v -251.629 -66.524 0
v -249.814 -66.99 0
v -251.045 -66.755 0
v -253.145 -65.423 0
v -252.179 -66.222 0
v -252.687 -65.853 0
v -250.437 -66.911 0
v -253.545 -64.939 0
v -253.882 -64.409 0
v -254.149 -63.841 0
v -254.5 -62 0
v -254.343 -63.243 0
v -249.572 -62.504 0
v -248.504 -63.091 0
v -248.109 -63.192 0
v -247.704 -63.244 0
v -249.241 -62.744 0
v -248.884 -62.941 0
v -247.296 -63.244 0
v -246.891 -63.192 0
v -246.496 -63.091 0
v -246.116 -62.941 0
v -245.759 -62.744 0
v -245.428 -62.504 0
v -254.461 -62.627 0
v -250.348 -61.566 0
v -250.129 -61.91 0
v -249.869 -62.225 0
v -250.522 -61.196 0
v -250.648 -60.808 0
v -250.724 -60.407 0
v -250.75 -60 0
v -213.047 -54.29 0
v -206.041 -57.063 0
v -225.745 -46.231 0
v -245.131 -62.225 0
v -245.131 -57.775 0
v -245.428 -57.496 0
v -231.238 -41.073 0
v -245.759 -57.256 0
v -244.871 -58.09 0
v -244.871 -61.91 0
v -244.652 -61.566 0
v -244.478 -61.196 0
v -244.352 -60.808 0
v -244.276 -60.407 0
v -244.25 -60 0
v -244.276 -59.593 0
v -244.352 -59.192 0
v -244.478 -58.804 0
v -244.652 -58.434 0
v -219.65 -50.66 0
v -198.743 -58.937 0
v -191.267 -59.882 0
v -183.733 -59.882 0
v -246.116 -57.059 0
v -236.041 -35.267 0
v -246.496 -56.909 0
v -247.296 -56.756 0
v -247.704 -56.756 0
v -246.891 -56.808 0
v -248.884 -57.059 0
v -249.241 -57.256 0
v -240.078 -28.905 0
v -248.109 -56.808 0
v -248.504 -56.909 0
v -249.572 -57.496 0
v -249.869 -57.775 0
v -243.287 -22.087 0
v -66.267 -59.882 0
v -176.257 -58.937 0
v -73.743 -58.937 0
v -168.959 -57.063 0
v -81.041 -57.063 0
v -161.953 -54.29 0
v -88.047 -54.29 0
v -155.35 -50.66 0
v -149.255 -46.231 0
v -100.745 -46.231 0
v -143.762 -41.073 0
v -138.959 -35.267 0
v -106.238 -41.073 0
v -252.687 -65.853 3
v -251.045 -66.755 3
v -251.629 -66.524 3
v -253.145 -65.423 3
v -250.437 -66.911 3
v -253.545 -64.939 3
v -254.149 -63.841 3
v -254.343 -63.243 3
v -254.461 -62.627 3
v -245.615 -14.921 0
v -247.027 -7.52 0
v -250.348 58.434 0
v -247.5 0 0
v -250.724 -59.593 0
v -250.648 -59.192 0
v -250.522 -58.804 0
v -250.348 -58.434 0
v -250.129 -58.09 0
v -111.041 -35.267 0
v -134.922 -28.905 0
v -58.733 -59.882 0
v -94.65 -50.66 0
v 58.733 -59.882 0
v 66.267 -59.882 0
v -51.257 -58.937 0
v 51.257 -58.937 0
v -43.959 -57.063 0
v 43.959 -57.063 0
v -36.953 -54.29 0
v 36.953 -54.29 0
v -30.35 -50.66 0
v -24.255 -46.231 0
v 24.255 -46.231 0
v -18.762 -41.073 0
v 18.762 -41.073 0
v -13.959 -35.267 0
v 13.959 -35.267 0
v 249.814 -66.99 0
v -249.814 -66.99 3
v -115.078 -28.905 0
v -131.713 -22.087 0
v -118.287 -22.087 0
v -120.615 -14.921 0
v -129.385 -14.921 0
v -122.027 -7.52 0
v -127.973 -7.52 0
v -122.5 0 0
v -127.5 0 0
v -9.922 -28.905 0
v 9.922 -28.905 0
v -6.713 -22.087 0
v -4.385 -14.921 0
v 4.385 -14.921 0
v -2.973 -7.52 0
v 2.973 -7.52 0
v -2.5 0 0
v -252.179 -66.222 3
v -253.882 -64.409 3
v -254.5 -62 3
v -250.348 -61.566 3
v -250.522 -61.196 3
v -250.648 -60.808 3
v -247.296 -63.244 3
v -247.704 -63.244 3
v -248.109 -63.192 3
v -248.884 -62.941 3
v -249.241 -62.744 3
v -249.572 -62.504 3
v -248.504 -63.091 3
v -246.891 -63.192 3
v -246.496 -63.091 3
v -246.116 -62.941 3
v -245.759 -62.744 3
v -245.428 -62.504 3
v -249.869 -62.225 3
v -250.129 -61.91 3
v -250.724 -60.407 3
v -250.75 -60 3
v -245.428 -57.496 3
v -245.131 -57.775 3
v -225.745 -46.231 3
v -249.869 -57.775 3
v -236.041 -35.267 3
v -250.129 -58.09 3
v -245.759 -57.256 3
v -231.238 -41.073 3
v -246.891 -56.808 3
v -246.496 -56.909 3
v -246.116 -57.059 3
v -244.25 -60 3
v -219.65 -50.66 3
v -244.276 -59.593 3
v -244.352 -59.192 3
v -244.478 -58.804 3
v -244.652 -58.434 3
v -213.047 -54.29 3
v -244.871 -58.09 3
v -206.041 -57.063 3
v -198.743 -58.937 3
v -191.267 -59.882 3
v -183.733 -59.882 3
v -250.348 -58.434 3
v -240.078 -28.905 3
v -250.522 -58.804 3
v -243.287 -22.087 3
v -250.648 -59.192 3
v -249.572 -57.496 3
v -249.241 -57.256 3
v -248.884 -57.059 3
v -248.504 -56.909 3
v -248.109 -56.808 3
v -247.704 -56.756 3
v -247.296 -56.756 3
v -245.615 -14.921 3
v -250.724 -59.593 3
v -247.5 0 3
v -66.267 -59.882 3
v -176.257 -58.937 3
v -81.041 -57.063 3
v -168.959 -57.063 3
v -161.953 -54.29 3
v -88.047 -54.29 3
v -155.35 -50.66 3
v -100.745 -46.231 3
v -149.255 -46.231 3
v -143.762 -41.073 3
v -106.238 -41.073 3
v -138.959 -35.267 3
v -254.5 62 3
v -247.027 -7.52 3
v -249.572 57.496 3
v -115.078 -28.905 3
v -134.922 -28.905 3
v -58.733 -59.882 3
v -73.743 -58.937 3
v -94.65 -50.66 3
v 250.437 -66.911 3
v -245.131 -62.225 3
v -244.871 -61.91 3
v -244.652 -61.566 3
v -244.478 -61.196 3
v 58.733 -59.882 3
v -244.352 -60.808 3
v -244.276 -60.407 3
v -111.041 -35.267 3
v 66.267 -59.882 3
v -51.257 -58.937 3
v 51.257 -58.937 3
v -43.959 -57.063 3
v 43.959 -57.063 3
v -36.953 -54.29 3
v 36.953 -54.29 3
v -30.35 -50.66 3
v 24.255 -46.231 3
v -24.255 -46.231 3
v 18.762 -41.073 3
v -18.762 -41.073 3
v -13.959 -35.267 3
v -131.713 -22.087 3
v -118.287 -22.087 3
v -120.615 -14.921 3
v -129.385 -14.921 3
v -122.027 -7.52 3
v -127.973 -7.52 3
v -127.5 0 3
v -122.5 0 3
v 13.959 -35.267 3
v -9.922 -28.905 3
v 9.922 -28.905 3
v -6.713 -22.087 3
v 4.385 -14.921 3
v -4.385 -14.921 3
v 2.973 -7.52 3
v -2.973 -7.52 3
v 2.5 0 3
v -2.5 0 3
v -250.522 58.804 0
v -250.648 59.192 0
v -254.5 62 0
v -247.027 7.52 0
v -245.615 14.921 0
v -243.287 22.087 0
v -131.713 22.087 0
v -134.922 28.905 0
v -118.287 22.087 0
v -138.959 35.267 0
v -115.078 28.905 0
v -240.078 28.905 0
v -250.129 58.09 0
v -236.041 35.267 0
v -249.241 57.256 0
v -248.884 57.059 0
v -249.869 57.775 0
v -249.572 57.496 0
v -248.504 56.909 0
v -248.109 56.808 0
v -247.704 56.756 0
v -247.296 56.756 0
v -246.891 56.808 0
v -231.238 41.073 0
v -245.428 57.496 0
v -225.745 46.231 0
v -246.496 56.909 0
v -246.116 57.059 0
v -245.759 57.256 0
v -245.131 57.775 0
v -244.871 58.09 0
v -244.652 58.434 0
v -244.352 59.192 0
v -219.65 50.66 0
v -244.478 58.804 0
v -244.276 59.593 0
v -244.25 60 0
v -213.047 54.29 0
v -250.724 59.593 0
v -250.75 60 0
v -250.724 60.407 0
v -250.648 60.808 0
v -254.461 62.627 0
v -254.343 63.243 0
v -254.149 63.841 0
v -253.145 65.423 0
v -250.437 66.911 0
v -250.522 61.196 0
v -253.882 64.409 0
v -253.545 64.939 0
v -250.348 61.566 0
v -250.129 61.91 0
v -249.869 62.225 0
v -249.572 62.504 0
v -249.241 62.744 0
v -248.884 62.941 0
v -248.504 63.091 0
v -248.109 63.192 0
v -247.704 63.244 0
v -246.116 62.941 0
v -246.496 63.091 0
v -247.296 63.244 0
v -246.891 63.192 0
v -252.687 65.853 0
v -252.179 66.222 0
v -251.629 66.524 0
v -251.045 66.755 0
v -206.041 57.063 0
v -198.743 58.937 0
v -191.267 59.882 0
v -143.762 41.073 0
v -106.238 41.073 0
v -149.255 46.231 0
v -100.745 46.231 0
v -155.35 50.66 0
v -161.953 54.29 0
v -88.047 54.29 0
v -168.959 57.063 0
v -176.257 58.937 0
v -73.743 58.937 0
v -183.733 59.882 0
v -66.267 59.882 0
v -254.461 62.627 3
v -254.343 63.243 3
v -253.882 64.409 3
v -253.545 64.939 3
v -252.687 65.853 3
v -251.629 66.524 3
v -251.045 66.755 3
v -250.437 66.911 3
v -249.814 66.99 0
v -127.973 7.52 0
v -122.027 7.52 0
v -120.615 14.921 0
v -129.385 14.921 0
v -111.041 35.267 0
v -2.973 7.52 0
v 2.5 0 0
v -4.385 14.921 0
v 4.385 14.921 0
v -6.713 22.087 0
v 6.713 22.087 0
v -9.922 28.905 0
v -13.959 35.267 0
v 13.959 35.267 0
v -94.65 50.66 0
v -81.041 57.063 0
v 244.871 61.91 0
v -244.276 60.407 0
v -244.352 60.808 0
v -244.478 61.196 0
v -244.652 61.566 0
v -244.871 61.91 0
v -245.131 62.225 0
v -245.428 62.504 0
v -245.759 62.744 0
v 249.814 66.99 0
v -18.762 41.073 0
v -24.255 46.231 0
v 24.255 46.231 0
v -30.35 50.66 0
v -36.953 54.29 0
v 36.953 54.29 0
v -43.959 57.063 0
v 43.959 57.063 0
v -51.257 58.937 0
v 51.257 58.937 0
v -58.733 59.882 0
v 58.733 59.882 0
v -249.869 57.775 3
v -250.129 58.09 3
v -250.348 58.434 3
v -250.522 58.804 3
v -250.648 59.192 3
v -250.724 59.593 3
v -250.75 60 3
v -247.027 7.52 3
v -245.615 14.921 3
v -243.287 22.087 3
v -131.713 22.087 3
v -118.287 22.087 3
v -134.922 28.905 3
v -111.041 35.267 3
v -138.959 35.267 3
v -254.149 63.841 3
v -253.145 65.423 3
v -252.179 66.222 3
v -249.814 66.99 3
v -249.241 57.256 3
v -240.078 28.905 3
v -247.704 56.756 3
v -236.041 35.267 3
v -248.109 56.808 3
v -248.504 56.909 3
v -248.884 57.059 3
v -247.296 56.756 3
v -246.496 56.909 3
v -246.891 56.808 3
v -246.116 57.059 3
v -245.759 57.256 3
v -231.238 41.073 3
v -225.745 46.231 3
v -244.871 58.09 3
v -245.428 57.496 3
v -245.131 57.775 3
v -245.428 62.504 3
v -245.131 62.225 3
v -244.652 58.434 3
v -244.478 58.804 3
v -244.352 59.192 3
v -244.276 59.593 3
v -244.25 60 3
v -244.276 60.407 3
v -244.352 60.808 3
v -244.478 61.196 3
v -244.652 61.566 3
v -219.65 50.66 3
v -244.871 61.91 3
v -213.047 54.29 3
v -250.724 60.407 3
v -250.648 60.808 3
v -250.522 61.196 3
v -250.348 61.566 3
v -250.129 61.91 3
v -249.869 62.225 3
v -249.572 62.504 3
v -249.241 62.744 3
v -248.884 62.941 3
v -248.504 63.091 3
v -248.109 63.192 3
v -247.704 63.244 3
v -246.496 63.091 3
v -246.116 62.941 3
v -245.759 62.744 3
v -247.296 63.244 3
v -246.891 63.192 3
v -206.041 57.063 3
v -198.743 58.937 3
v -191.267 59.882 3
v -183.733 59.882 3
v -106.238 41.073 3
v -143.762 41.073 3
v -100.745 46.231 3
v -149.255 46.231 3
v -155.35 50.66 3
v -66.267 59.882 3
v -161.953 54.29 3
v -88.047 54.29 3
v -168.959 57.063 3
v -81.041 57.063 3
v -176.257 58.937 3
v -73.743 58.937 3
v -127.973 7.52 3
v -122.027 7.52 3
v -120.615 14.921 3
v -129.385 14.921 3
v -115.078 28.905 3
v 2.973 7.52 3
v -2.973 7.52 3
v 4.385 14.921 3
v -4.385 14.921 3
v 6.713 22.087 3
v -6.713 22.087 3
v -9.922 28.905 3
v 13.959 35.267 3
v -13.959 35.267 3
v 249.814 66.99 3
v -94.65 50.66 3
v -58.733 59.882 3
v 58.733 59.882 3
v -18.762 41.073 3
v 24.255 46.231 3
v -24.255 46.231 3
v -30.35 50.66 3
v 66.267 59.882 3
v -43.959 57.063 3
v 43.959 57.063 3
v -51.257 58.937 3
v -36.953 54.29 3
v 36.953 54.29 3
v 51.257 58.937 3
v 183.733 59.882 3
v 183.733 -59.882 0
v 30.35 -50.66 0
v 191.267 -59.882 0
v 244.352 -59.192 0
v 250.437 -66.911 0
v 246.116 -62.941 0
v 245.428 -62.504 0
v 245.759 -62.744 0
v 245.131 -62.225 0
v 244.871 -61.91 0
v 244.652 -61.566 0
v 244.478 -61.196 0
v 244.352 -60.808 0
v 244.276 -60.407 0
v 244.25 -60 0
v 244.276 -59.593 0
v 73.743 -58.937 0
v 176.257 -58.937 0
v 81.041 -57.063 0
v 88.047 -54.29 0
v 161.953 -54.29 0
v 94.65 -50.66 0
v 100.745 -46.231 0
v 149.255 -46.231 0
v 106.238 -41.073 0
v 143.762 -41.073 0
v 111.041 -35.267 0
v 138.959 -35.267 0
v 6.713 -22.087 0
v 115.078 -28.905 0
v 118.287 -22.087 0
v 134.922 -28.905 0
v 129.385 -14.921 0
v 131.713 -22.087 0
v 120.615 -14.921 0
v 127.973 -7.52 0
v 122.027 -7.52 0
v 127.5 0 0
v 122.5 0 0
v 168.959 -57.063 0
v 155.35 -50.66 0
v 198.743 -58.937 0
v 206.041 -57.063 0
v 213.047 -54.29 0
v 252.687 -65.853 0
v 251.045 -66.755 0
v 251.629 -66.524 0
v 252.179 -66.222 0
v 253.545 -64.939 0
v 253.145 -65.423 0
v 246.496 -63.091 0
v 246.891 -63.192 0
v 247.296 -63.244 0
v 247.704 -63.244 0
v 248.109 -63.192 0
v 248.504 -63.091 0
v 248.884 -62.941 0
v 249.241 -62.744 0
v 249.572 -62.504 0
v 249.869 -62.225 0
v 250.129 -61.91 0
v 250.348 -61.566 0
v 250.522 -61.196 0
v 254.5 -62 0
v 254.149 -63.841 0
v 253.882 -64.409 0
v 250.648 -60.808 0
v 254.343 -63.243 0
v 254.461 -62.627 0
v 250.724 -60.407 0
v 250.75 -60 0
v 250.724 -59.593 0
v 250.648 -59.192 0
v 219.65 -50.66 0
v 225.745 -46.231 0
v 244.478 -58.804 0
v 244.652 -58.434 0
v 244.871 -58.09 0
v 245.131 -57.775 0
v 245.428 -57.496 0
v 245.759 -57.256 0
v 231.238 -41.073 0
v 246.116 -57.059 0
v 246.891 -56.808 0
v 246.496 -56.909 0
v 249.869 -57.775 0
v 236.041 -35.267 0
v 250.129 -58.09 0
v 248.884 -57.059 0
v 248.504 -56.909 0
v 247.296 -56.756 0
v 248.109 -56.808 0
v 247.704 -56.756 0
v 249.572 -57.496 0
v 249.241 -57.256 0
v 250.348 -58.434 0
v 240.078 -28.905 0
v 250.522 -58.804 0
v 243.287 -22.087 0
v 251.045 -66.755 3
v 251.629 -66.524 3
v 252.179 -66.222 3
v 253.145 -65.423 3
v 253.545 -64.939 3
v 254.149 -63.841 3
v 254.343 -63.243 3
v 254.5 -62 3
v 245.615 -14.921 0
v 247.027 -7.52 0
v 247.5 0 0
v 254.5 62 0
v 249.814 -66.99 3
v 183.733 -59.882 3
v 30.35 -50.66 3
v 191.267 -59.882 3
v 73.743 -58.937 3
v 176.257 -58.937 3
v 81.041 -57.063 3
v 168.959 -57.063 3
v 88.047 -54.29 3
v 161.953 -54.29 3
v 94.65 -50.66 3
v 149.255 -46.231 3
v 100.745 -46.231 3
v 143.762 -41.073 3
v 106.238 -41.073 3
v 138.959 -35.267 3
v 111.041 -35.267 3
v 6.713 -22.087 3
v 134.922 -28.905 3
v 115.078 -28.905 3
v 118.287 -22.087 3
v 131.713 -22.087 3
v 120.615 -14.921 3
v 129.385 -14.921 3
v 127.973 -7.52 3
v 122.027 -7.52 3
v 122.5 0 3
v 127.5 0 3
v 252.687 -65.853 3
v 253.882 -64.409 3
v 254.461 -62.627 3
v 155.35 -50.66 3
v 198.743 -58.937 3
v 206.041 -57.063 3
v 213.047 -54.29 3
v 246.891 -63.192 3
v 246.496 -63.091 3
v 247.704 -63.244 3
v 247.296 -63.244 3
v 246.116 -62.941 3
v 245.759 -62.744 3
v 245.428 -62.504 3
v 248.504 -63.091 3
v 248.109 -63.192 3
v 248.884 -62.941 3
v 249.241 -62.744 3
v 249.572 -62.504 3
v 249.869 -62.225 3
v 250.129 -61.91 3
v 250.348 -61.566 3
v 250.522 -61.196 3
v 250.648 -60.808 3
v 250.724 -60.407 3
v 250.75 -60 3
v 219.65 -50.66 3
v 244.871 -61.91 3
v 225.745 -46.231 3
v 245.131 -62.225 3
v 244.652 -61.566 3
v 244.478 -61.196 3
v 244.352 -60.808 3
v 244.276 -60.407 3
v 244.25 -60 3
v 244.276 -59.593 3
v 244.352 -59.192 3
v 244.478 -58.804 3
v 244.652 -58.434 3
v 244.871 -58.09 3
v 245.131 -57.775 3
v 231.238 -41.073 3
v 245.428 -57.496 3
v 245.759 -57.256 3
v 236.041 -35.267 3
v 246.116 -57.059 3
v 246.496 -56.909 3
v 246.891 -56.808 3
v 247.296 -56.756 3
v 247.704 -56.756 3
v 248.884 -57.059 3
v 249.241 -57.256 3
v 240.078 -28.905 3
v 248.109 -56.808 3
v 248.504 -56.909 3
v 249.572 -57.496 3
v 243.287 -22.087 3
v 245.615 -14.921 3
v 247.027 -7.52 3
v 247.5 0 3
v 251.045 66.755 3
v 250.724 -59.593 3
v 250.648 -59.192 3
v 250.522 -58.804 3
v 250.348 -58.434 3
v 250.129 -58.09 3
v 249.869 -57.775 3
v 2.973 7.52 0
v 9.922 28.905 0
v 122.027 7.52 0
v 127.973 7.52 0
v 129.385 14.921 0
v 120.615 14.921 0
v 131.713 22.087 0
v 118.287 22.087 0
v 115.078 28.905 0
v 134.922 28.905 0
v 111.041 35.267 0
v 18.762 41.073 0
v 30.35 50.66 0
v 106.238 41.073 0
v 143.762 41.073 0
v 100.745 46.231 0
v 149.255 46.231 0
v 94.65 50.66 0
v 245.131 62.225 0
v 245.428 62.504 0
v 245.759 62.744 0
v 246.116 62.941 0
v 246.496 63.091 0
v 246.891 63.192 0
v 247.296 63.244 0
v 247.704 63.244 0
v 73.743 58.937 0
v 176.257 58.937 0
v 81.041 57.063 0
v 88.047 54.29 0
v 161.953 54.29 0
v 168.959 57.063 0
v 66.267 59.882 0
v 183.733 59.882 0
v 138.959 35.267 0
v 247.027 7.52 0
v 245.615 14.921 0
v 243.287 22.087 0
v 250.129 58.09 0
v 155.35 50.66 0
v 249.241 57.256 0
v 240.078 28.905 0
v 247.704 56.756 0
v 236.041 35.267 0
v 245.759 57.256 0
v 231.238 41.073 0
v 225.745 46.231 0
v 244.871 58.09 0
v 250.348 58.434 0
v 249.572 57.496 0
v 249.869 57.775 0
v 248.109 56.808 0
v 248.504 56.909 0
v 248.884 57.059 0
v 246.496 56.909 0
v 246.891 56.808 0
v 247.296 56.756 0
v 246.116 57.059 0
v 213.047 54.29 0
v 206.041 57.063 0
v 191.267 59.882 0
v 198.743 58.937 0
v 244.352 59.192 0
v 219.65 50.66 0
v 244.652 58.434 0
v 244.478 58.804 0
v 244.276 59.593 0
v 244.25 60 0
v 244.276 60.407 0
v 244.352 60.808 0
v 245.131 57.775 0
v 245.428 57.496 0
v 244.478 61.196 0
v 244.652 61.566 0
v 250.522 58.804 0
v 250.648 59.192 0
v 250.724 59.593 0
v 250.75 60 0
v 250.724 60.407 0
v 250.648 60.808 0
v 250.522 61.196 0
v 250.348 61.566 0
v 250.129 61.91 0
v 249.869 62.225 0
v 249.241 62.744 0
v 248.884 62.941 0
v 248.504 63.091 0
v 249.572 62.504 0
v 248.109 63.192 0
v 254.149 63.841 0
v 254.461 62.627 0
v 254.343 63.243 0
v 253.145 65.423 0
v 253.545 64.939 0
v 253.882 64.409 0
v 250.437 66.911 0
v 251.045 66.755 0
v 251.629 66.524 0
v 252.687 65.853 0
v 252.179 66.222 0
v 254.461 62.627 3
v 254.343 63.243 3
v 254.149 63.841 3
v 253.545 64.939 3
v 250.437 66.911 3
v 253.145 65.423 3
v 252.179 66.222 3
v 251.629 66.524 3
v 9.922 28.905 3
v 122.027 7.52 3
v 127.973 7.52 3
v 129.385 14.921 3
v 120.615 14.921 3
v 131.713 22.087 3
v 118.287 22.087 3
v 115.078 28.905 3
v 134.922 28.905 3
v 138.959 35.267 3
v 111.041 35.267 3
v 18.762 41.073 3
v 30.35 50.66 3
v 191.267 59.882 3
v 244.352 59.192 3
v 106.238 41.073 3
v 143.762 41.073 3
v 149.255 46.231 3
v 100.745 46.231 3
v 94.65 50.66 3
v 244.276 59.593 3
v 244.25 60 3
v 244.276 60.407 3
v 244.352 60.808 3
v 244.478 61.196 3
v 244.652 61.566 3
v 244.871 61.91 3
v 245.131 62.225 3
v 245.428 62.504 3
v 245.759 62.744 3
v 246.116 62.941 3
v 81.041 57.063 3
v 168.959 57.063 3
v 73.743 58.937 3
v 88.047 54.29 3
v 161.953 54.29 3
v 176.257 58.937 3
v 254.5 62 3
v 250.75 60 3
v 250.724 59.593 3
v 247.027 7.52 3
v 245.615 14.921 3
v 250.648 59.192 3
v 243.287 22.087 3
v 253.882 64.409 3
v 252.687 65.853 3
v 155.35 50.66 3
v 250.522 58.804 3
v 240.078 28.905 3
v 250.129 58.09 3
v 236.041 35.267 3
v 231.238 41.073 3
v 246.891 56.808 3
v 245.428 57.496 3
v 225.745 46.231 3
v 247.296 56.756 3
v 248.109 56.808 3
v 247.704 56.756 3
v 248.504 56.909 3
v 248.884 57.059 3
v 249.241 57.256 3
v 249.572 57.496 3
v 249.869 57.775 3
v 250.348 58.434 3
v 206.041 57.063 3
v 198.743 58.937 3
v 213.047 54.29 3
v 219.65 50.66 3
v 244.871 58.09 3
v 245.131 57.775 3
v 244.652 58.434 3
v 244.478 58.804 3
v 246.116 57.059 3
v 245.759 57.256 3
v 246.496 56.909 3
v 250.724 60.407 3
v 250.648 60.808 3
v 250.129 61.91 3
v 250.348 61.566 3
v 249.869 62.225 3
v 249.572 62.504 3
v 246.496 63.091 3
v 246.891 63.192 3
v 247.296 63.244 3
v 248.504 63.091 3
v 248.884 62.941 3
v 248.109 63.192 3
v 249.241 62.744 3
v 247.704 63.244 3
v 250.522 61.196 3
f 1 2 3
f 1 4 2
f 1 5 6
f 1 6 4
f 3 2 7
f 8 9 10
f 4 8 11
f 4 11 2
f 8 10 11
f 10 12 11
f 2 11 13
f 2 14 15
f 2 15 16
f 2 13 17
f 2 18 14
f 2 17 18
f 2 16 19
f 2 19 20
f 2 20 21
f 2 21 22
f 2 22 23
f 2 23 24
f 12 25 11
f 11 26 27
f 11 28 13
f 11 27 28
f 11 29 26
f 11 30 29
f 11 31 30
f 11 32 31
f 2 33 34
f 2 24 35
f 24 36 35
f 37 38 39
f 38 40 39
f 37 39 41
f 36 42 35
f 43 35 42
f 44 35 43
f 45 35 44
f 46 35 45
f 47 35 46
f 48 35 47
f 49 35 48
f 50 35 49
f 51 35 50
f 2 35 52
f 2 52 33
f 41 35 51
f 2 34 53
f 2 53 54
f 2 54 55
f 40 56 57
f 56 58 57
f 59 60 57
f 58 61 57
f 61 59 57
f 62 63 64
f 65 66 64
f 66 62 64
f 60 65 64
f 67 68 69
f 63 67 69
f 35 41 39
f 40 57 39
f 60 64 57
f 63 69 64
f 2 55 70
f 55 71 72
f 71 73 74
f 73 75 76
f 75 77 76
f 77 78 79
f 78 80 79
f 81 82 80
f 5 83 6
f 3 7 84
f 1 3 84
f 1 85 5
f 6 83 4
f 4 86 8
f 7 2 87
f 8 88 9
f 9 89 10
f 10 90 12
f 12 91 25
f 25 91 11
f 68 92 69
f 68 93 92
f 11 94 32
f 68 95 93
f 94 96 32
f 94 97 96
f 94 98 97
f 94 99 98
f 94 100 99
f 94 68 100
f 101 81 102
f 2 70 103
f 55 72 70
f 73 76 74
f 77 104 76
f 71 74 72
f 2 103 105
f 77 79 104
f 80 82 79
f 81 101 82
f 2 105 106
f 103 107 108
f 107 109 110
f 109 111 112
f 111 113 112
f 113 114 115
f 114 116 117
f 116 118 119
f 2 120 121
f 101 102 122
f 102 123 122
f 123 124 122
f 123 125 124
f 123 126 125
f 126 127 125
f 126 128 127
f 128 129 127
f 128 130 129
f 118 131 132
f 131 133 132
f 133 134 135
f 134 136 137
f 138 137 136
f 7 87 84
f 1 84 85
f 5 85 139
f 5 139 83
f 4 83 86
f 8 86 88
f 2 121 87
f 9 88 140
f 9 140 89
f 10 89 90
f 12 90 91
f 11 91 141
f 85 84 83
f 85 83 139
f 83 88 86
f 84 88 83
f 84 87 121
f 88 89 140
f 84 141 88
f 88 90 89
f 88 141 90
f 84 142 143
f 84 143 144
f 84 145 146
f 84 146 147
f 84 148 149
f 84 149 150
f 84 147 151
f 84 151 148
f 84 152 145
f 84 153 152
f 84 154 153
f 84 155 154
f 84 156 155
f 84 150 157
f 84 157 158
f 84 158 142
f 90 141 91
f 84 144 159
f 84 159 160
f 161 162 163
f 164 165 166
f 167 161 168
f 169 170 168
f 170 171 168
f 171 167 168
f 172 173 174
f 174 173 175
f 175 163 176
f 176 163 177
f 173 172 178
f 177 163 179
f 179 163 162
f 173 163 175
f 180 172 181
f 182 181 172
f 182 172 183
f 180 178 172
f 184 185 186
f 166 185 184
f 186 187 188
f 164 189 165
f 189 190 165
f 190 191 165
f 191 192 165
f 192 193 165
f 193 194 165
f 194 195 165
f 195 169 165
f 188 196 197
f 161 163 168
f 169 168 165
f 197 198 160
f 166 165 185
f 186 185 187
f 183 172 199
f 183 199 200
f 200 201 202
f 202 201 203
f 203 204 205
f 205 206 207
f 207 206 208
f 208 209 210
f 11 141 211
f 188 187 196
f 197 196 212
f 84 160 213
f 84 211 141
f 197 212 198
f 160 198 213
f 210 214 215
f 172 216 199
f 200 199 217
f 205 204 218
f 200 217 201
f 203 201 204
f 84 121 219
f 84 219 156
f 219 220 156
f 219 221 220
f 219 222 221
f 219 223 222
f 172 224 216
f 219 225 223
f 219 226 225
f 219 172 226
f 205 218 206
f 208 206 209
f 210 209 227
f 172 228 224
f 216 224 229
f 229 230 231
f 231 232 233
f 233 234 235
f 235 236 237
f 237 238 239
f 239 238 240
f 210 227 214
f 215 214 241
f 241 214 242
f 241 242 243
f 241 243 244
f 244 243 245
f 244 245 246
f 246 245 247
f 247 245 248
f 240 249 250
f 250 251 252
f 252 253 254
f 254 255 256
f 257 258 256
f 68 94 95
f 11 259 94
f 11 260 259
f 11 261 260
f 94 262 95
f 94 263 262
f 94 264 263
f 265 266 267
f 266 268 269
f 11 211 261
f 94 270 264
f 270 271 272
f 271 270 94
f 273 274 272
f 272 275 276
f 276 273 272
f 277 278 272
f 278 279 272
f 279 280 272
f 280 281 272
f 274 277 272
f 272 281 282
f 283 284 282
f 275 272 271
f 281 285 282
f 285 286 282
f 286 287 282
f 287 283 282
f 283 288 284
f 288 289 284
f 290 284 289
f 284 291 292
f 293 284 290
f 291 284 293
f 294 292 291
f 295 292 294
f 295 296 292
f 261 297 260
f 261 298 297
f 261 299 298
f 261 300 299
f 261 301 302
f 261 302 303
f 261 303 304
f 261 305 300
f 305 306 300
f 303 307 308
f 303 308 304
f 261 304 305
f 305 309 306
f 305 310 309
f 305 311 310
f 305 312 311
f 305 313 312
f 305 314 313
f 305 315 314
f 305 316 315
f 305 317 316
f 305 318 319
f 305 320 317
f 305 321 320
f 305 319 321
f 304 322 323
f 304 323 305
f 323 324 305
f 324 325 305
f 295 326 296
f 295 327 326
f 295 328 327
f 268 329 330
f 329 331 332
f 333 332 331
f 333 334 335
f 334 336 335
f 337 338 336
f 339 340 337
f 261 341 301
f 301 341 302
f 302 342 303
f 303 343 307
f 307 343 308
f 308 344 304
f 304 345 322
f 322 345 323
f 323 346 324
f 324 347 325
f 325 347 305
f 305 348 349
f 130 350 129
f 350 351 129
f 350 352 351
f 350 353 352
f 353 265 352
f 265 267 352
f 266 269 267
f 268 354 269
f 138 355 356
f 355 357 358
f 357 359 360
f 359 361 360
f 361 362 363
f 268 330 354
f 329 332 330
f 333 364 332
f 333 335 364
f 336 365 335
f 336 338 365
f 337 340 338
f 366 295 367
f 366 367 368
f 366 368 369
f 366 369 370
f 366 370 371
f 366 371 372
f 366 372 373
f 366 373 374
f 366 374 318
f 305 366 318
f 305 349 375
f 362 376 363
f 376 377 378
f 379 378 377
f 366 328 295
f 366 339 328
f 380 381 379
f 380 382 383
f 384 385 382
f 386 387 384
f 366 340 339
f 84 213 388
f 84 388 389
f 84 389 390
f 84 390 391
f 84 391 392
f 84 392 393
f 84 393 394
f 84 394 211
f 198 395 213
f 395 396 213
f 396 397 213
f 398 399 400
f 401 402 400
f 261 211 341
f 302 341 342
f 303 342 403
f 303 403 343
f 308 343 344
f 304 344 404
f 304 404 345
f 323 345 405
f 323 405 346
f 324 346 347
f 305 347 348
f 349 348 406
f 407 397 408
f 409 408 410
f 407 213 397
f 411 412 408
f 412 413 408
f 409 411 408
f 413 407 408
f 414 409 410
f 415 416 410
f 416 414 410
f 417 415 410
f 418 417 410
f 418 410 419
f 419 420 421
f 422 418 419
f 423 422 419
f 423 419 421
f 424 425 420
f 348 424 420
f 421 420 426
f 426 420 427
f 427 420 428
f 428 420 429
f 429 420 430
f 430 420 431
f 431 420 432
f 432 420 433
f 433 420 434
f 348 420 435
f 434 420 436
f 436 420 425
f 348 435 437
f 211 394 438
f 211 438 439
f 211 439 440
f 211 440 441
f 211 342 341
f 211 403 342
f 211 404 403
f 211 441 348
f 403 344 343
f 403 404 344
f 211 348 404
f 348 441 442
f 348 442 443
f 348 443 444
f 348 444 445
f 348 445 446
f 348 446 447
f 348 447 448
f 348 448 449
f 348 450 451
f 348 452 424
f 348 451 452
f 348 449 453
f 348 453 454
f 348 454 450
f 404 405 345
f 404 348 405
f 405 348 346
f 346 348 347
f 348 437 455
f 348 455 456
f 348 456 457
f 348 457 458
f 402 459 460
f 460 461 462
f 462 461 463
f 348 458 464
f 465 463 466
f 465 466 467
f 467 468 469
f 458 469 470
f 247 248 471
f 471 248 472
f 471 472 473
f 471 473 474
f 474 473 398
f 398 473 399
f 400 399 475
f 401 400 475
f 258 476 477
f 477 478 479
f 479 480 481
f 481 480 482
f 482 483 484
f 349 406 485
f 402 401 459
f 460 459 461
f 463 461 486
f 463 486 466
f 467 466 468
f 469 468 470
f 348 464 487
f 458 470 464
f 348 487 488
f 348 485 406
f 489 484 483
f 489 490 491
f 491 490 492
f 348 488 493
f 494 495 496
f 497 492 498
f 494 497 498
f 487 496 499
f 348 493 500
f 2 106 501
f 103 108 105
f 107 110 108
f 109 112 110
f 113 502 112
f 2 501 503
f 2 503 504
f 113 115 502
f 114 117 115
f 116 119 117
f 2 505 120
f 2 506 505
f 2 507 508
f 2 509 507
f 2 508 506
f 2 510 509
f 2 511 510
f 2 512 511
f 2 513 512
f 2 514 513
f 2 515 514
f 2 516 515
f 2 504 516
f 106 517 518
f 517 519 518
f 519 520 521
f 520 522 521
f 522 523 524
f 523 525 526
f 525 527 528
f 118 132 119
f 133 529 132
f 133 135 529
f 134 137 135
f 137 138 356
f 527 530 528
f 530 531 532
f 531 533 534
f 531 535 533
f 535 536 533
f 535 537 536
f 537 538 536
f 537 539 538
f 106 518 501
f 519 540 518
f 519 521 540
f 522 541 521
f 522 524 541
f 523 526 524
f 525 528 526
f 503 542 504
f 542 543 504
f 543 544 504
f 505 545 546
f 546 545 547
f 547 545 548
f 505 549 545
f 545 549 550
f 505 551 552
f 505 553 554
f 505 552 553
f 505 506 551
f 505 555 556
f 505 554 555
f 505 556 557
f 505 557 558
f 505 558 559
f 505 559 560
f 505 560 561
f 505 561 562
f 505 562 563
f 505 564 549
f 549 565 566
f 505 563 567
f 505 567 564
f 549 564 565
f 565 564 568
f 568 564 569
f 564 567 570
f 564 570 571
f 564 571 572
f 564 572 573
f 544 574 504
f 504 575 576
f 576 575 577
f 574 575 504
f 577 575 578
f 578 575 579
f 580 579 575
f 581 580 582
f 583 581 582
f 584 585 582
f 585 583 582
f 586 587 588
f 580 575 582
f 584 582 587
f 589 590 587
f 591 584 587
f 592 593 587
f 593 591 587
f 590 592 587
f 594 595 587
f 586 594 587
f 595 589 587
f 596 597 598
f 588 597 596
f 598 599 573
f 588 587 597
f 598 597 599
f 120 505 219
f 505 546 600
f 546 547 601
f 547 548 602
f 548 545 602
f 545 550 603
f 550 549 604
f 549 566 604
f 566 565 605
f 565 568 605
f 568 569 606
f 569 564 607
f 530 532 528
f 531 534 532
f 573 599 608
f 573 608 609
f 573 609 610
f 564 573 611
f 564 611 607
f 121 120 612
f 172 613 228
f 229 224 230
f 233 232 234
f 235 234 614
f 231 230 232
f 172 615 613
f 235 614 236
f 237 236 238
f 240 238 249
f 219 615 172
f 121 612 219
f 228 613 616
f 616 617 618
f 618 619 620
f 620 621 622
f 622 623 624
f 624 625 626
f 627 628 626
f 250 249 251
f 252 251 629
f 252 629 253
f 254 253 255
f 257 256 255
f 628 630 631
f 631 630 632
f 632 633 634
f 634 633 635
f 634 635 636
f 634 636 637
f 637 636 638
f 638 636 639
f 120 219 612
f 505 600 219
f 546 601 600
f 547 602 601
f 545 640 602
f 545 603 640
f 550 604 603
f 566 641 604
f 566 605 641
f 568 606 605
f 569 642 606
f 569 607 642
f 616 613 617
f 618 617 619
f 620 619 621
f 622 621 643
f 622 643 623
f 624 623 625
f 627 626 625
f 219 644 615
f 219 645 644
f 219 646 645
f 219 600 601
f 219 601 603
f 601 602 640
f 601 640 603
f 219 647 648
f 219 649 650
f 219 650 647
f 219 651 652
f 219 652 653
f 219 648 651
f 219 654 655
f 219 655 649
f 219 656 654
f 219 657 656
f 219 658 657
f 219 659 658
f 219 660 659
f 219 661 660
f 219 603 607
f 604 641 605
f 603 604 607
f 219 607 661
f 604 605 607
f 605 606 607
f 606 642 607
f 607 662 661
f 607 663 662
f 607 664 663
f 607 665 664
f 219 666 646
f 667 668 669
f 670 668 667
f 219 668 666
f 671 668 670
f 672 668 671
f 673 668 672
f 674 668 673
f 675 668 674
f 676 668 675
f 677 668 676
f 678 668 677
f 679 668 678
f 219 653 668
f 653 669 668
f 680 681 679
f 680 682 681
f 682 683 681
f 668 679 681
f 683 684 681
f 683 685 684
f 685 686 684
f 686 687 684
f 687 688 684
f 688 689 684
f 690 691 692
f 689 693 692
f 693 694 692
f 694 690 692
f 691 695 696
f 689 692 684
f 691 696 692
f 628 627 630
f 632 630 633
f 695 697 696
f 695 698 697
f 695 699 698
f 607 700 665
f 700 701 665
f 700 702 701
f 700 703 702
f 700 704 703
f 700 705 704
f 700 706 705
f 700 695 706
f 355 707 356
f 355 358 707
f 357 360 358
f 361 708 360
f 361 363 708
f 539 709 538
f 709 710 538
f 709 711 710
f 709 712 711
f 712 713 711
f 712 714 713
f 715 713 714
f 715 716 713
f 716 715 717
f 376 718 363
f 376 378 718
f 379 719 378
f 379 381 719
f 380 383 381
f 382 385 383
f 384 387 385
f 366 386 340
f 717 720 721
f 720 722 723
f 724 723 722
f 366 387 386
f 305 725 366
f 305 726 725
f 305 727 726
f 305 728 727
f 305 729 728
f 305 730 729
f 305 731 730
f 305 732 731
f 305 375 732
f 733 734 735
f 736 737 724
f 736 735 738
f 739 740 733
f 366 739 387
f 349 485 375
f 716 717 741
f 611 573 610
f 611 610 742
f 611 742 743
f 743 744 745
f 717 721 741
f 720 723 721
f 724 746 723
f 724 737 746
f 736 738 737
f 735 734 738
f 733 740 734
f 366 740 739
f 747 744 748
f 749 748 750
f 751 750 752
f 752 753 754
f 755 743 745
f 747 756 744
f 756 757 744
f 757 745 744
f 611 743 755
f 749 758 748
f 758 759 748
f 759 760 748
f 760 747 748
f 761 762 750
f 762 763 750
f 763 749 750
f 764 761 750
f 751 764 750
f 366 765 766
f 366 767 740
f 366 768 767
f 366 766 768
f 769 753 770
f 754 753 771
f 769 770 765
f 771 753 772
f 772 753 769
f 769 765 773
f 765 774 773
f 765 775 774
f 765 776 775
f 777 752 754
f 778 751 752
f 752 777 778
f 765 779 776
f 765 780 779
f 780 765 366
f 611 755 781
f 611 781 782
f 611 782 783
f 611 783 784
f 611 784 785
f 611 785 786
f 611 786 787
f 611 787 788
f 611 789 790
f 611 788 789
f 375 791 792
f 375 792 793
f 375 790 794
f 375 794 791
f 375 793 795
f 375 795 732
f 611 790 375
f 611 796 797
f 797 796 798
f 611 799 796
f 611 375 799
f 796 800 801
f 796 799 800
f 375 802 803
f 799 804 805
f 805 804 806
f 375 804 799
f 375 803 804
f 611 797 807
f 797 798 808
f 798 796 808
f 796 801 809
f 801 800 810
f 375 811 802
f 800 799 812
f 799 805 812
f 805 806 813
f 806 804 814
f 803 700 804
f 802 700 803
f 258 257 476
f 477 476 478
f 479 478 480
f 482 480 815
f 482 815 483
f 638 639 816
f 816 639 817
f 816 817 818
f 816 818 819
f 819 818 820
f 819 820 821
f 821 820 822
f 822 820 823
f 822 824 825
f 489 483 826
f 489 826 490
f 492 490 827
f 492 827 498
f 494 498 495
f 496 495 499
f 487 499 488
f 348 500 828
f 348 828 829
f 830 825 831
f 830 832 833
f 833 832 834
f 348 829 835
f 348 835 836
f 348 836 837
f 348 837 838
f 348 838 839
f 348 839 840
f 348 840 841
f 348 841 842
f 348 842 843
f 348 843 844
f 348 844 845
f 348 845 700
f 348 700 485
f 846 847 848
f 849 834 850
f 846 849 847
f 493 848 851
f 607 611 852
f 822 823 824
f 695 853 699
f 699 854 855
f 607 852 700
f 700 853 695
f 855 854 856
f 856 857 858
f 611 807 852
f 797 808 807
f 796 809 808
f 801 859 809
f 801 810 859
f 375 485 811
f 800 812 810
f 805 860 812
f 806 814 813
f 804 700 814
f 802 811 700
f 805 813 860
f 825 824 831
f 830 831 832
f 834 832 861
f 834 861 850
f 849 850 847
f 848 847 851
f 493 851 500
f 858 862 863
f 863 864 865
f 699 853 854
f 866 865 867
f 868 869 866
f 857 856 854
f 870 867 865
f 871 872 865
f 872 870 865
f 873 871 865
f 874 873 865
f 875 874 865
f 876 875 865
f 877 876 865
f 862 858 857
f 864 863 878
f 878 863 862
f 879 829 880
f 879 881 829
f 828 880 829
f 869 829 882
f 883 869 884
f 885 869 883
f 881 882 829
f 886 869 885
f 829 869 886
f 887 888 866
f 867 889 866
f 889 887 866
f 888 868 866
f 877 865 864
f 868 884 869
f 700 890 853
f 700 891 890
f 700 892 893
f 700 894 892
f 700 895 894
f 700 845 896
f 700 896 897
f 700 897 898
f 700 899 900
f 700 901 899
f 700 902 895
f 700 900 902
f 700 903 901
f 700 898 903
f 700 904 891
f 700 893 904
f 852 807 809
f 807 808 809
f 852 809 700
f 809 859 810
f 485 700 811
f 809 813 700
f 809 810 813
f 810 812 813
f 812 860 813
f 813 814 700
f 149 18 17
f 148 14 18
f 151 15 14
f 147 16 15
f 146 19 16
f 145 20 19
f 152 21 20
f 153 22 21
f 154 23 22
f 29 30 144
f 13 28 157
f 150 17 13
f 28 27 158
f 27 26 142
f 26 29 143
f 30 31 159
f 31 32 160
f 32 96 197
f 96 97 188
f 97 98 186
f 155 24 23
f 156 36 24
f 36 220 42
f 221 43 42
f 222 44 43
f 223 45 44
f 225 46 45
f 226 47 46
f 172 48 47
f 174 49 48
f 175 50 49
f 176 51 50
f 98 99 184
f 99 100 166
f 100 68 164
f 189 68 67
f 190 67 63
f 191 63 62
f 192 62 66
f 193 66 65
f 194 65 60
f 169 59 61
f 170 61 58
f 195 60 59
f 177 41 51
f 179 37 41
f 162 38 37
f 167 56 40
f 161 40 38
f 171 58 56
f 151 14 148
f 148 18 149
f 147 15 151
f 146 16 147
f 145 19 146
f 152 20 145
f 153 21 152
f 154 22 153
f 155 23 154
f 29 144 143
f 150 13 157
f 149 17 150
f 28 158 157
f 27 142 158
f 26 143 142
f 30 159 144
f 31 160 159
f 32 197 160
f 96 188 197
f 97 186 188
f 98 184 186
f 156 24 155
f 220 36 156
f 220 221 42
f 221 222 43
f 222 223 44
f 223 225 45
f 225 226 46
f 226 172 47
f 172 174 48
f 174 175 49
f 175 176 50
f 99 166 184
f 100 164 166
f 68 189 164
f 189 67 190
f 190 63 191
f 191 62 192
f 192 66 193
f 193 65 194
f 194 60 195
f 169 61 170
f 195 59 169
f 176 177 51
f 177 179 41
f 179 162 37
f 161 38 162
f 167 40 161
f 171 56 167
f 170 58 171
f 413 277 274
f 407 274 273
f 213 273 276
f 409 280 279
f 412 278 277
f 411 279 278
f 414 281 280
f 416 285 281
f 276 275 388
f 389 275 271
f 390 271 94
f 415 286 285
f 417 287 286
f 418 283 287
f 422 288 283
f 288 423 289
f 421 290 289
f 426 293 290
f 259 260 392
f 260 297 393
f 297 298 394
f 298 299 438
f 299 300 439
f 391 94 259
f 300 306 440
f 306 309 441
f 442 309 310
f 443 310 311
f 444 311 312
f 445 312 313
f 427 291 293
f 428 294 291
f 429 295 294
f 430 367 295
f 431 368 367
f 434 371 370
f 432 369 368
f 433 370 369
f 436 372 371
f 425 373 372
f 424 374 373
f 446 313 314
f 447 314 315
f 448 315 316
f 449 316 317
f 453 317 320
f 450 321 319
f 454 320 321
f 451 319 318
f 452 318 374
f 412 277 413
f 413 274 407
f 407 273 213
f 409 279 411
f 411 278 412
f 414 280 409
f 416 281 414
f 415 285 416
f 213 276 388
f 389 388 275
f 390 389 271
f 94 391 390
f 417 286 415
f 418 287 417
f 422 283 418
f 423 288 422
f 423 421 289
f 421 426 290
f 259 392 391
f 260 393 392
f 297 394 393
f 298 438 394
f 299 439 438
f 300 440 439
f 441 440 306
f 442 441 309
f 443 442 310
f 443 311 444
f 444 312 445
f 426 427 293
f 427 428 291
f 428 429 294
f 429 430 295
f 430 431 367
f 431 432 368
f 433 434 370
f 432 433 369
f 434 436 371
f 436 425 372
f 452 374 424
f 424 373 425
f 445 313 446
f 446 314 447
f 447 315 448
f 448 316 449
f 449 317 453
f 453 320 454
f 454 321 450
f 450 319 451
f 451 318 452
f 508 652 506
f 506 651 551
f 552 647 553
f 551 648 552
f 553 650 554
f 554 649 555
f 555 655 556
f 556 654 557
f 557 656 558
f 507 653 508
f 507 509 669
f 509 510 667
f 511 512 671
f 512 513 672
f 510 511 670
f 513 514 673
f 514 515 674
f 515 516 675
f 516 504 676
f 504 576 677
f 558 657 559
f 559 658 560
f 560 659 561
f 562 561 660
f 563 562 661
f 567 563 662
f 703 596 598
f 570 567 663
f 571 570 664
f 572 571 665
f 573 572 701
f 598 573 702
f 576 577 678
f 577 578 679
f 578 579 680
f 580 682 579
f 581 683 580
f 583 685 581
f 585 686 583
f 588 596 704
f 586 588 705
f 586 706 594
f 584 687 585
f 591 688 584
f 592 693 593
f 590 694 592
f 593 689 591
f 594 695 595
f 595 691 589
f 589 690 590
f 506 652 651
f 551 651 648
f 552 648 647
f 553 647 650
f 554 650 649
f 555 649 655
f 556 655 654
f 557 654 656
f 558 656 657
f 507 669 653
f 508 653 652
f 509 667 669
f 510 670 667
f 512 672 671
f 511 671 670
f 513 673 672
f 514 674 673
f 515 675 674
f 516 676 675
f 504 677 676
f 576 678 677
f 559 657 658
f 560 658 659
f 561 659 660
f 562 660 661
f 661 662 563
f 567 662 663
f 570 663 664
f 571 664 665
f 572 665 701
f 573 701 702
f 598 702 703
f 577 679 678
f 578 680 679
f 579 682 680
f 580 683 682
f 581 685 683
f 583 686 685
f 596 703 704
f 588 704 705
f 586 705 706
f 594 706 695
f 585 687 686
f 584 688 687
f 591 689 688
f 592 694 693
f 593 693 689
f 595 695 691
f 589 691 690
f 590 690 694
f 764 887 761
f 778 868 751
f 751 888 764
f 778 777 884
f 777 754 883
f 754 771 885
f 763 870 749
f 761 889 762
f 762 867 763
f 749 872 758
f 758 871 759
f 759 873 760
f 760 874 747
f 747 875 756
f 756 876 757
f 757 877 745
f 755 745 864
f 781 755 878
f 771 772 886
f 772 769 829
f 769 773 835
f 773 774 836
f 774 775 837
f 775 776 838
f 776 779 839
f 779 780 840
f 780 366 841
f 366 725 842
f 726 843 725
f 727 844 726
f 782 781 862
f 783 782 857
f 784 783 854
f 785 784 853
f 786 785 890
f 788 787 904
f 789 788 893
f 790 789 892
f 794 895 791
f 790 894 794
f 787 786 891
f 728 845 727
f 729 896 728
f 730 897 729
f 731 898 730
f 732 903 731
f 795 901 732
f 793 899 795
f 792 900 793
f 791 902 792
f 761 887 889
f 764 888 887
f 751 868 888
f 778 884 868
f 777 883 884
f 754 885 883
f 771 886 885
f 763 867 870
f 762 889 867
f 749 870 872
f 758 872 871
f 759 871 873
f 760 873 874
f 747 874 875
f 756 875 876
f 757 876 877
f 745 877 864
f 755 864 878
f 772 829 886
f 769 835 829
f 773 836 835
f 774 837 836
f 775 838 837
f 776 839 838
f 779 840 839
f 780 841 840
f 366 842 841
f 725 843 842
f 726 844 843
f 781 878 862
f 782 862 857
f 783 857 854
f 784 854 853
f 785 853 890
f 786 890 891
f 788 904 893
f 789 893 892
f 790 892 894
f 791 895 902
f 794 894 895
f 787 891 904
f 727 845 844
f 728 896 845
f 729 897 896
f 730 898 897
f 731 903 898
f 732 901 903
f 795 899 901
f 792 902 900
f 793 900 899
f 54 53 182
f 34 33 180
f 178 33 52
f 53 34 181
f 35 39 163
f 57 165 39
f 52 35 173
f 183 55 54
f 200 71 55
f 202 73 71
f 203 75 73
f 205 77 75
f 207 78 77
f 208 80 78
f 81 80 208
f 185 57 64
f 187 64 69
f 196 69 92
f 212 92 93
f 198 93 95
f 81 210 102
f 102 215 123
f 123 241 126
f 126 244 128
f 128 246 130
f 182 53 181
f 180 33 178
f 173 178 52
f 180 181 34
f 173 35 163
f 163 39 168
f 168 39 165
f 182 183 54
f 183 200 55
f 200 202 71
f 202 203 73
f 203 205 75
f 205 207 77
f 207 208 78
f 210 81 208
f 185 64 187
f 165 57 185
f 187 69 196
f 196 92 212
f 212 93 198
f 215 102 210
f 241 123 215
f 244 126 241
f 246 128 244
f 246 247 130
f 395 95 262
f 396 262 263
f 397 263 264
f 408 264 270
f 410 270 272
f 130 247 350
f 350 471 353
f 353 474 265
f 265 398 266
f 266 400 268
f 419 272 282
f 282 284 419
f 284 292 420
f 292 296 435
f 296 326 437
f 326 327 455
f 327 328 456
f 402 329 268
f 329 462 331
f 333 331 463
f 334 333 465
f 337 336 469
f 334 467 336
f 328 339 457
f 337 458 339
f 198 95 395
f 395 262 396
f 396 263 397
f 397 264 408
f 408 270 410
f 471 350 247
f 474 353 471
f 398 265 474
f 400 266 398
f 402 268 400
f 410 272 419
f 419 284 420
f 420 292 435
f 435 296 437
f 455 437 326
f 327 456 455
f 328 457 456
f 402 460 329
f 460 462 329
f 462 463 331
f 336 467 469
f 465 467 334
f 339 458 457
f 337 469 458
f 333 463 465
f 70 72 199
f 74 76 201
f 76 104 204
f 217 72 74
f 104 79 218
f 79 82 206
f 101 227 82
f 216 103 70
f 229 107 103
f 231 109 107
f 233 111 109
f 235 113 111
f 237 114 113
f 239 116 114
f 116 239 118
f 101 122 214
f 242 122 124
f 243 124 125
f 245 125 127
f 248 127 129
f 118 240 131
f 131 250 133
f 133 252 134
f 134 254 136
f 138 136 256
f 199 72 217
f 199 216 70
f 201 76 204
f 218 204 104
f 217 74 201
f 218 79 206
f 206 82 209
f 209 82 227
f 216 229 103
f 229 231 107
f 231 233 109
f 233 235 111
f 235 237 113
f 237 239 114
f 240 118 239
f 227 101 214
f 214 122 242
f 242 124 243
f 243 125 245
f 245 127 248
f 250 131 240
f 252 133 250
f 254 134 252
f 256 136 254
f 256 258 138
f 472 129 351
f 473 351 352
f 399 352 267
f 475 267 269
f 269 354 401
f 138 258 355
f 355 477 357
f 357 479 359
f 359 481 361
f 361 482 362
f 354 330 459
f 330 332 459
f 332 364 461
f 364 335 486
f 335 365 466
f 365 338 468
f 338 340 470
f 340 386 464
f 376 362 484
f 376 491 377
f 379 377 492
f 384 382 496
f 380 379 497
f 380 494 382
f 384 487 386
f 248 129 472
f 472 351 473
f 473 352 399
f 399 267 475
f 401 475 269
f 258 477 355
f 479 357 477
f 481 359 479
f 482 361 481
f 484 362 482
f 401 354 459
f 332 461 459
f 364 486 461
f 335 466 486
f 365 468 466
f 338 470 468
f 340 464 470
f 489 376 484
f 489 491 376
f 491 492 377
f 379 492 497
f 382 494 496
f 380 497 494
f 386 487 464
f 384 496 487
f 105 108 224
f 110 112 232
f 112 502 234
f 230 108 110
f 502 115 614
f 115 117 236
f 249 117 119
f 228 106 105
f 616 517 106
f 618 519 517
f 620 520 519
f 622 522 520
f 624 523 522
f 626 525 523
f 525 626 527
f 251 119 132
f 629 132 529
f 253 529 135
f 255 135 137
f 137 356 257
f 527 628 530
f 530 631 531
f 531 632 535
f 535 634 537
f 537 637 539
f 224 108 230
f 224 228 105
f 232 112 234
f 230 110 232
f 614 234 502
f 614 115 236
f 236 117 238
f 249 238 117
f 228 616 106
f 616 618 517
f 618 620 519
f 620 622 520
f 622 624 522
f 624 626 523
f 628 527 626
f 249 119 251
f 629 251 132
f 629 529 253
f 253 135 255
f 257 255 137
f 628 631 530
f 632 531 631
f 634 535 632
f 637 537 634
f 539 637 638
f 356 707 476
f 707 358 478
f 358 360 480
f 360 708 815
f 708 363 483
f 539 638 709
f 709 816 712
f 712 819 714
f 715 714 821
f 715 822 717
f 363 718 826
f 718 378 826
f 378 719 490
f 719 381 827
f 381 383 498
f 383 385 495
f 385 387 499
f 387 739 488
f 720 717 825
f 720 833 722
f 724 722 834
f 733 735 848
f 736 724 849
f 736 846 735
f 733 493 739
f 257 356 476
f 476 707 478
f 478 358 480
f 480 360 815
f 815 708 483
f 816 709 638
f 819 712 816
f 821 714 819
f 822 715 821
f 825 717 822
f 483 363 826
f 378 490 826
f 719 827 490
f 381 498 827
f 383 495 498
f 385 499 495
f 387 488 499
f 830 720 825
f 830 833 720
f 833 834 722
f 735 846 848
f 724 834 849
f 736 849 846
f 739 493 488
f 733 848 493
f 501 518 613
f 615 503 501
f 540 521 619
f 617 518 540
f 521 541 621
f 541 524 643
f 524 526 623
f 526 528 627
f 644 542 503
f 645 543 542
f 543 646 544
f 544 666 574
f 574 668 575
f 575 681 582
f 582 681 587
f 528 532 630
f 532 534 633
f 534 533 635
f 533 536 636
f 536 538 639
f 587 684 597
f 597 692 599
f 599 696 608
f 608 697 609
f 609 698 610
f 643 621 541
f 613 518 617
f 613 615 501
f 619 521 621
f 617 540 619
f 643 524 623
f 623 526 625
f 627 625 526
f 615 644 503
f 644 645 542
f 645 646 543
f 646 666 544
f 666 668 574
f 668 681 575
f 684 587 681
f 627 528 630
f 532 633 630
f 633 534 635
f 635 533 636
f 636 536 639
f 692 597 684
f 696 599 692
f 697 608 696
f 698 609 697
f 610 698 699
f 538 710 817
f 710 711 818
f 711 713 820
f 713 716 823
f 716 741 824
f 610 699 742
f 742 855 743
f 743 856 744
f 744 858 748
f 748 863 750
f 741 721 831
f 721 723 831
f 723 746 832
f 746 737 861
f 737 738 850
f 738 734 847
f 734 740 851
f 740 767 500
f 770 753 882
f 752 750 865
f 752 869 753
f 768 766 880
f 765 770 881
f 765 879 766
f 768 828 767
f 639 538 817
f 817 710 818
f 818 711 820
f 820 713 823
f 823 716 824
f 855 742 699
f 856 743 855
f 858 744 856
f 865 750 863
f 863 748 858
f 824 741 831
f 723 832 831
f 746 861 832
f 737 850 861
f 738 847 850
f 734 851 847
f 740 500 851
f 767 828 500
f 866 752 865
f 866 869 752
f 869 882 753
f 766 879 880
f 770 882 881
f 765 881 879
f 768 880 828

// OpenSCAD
$fn = 50;

difference() {
	union() {
		hull() {
			translate(v = [-249.5, 62.0, 0]) {
				cylinder(h = 3, r = 5);
			}
			translate(v = [249.5, 62.0, 0]) {
				cylinder(h = 3, r = 5);
			}
			translate(v = [-249.5, -62.0, 0]) {
				cylinder(h = 3, r = 5);
			}
			translate(v = [249.5, -62.0, 0]) {
				cylinder(h = 3, r = 5);
			}
		}
	}
	union() {
		translate(v = [-247.5, -60.0, -100.0]) {
			cylinder(h = 200, r = 3.25);
		}
		translate(v = [-247.5, 60.0, -100.0]) {
			cylinder(h = 200, r = 3.25);
		}
		translate(v = [247.5, -60.0, -100.0]) {
			cylinder(h = 200, r = 3.25);
		}
		translate(v = [247.5, 60.0, -100.0]) {
			cylinder(h = 200, r = 3.25);
		}
		translate(v = [-247.5, -60.0, -100.0]) {
			cylinder(h = 200, r = 1.8);
		}
		translate(v = [-247.5, 60.0, -100.0]) {
			cylinder(h = 200, r = 1.8);
		}
		translate(v = [247.5, -60.0, -100.0]) {
			cylinder(h = 200, r = 1.8);
		}
		translate(v = [247.5, 60.0, -100.0]) {
			cylinder(h = 200, r = 1.8);
		}
		translate(v = [-187.5, 0, 0.0]) {
			cylinder(h = 3, r = 60.0);
		}
		translate(v = [-62.5, 0, 0.0]) {
			cylinder(h = 3, r = 60.0);
		}
		translate(v = [62.5, 0, 0.0]) {
			cylinder(h = 3, r = 60.0);
		}
		translate(v = [187.5, 0, 0.0]) {
			cylinder(h = 3, r = 60.0);
		}
	}
}
